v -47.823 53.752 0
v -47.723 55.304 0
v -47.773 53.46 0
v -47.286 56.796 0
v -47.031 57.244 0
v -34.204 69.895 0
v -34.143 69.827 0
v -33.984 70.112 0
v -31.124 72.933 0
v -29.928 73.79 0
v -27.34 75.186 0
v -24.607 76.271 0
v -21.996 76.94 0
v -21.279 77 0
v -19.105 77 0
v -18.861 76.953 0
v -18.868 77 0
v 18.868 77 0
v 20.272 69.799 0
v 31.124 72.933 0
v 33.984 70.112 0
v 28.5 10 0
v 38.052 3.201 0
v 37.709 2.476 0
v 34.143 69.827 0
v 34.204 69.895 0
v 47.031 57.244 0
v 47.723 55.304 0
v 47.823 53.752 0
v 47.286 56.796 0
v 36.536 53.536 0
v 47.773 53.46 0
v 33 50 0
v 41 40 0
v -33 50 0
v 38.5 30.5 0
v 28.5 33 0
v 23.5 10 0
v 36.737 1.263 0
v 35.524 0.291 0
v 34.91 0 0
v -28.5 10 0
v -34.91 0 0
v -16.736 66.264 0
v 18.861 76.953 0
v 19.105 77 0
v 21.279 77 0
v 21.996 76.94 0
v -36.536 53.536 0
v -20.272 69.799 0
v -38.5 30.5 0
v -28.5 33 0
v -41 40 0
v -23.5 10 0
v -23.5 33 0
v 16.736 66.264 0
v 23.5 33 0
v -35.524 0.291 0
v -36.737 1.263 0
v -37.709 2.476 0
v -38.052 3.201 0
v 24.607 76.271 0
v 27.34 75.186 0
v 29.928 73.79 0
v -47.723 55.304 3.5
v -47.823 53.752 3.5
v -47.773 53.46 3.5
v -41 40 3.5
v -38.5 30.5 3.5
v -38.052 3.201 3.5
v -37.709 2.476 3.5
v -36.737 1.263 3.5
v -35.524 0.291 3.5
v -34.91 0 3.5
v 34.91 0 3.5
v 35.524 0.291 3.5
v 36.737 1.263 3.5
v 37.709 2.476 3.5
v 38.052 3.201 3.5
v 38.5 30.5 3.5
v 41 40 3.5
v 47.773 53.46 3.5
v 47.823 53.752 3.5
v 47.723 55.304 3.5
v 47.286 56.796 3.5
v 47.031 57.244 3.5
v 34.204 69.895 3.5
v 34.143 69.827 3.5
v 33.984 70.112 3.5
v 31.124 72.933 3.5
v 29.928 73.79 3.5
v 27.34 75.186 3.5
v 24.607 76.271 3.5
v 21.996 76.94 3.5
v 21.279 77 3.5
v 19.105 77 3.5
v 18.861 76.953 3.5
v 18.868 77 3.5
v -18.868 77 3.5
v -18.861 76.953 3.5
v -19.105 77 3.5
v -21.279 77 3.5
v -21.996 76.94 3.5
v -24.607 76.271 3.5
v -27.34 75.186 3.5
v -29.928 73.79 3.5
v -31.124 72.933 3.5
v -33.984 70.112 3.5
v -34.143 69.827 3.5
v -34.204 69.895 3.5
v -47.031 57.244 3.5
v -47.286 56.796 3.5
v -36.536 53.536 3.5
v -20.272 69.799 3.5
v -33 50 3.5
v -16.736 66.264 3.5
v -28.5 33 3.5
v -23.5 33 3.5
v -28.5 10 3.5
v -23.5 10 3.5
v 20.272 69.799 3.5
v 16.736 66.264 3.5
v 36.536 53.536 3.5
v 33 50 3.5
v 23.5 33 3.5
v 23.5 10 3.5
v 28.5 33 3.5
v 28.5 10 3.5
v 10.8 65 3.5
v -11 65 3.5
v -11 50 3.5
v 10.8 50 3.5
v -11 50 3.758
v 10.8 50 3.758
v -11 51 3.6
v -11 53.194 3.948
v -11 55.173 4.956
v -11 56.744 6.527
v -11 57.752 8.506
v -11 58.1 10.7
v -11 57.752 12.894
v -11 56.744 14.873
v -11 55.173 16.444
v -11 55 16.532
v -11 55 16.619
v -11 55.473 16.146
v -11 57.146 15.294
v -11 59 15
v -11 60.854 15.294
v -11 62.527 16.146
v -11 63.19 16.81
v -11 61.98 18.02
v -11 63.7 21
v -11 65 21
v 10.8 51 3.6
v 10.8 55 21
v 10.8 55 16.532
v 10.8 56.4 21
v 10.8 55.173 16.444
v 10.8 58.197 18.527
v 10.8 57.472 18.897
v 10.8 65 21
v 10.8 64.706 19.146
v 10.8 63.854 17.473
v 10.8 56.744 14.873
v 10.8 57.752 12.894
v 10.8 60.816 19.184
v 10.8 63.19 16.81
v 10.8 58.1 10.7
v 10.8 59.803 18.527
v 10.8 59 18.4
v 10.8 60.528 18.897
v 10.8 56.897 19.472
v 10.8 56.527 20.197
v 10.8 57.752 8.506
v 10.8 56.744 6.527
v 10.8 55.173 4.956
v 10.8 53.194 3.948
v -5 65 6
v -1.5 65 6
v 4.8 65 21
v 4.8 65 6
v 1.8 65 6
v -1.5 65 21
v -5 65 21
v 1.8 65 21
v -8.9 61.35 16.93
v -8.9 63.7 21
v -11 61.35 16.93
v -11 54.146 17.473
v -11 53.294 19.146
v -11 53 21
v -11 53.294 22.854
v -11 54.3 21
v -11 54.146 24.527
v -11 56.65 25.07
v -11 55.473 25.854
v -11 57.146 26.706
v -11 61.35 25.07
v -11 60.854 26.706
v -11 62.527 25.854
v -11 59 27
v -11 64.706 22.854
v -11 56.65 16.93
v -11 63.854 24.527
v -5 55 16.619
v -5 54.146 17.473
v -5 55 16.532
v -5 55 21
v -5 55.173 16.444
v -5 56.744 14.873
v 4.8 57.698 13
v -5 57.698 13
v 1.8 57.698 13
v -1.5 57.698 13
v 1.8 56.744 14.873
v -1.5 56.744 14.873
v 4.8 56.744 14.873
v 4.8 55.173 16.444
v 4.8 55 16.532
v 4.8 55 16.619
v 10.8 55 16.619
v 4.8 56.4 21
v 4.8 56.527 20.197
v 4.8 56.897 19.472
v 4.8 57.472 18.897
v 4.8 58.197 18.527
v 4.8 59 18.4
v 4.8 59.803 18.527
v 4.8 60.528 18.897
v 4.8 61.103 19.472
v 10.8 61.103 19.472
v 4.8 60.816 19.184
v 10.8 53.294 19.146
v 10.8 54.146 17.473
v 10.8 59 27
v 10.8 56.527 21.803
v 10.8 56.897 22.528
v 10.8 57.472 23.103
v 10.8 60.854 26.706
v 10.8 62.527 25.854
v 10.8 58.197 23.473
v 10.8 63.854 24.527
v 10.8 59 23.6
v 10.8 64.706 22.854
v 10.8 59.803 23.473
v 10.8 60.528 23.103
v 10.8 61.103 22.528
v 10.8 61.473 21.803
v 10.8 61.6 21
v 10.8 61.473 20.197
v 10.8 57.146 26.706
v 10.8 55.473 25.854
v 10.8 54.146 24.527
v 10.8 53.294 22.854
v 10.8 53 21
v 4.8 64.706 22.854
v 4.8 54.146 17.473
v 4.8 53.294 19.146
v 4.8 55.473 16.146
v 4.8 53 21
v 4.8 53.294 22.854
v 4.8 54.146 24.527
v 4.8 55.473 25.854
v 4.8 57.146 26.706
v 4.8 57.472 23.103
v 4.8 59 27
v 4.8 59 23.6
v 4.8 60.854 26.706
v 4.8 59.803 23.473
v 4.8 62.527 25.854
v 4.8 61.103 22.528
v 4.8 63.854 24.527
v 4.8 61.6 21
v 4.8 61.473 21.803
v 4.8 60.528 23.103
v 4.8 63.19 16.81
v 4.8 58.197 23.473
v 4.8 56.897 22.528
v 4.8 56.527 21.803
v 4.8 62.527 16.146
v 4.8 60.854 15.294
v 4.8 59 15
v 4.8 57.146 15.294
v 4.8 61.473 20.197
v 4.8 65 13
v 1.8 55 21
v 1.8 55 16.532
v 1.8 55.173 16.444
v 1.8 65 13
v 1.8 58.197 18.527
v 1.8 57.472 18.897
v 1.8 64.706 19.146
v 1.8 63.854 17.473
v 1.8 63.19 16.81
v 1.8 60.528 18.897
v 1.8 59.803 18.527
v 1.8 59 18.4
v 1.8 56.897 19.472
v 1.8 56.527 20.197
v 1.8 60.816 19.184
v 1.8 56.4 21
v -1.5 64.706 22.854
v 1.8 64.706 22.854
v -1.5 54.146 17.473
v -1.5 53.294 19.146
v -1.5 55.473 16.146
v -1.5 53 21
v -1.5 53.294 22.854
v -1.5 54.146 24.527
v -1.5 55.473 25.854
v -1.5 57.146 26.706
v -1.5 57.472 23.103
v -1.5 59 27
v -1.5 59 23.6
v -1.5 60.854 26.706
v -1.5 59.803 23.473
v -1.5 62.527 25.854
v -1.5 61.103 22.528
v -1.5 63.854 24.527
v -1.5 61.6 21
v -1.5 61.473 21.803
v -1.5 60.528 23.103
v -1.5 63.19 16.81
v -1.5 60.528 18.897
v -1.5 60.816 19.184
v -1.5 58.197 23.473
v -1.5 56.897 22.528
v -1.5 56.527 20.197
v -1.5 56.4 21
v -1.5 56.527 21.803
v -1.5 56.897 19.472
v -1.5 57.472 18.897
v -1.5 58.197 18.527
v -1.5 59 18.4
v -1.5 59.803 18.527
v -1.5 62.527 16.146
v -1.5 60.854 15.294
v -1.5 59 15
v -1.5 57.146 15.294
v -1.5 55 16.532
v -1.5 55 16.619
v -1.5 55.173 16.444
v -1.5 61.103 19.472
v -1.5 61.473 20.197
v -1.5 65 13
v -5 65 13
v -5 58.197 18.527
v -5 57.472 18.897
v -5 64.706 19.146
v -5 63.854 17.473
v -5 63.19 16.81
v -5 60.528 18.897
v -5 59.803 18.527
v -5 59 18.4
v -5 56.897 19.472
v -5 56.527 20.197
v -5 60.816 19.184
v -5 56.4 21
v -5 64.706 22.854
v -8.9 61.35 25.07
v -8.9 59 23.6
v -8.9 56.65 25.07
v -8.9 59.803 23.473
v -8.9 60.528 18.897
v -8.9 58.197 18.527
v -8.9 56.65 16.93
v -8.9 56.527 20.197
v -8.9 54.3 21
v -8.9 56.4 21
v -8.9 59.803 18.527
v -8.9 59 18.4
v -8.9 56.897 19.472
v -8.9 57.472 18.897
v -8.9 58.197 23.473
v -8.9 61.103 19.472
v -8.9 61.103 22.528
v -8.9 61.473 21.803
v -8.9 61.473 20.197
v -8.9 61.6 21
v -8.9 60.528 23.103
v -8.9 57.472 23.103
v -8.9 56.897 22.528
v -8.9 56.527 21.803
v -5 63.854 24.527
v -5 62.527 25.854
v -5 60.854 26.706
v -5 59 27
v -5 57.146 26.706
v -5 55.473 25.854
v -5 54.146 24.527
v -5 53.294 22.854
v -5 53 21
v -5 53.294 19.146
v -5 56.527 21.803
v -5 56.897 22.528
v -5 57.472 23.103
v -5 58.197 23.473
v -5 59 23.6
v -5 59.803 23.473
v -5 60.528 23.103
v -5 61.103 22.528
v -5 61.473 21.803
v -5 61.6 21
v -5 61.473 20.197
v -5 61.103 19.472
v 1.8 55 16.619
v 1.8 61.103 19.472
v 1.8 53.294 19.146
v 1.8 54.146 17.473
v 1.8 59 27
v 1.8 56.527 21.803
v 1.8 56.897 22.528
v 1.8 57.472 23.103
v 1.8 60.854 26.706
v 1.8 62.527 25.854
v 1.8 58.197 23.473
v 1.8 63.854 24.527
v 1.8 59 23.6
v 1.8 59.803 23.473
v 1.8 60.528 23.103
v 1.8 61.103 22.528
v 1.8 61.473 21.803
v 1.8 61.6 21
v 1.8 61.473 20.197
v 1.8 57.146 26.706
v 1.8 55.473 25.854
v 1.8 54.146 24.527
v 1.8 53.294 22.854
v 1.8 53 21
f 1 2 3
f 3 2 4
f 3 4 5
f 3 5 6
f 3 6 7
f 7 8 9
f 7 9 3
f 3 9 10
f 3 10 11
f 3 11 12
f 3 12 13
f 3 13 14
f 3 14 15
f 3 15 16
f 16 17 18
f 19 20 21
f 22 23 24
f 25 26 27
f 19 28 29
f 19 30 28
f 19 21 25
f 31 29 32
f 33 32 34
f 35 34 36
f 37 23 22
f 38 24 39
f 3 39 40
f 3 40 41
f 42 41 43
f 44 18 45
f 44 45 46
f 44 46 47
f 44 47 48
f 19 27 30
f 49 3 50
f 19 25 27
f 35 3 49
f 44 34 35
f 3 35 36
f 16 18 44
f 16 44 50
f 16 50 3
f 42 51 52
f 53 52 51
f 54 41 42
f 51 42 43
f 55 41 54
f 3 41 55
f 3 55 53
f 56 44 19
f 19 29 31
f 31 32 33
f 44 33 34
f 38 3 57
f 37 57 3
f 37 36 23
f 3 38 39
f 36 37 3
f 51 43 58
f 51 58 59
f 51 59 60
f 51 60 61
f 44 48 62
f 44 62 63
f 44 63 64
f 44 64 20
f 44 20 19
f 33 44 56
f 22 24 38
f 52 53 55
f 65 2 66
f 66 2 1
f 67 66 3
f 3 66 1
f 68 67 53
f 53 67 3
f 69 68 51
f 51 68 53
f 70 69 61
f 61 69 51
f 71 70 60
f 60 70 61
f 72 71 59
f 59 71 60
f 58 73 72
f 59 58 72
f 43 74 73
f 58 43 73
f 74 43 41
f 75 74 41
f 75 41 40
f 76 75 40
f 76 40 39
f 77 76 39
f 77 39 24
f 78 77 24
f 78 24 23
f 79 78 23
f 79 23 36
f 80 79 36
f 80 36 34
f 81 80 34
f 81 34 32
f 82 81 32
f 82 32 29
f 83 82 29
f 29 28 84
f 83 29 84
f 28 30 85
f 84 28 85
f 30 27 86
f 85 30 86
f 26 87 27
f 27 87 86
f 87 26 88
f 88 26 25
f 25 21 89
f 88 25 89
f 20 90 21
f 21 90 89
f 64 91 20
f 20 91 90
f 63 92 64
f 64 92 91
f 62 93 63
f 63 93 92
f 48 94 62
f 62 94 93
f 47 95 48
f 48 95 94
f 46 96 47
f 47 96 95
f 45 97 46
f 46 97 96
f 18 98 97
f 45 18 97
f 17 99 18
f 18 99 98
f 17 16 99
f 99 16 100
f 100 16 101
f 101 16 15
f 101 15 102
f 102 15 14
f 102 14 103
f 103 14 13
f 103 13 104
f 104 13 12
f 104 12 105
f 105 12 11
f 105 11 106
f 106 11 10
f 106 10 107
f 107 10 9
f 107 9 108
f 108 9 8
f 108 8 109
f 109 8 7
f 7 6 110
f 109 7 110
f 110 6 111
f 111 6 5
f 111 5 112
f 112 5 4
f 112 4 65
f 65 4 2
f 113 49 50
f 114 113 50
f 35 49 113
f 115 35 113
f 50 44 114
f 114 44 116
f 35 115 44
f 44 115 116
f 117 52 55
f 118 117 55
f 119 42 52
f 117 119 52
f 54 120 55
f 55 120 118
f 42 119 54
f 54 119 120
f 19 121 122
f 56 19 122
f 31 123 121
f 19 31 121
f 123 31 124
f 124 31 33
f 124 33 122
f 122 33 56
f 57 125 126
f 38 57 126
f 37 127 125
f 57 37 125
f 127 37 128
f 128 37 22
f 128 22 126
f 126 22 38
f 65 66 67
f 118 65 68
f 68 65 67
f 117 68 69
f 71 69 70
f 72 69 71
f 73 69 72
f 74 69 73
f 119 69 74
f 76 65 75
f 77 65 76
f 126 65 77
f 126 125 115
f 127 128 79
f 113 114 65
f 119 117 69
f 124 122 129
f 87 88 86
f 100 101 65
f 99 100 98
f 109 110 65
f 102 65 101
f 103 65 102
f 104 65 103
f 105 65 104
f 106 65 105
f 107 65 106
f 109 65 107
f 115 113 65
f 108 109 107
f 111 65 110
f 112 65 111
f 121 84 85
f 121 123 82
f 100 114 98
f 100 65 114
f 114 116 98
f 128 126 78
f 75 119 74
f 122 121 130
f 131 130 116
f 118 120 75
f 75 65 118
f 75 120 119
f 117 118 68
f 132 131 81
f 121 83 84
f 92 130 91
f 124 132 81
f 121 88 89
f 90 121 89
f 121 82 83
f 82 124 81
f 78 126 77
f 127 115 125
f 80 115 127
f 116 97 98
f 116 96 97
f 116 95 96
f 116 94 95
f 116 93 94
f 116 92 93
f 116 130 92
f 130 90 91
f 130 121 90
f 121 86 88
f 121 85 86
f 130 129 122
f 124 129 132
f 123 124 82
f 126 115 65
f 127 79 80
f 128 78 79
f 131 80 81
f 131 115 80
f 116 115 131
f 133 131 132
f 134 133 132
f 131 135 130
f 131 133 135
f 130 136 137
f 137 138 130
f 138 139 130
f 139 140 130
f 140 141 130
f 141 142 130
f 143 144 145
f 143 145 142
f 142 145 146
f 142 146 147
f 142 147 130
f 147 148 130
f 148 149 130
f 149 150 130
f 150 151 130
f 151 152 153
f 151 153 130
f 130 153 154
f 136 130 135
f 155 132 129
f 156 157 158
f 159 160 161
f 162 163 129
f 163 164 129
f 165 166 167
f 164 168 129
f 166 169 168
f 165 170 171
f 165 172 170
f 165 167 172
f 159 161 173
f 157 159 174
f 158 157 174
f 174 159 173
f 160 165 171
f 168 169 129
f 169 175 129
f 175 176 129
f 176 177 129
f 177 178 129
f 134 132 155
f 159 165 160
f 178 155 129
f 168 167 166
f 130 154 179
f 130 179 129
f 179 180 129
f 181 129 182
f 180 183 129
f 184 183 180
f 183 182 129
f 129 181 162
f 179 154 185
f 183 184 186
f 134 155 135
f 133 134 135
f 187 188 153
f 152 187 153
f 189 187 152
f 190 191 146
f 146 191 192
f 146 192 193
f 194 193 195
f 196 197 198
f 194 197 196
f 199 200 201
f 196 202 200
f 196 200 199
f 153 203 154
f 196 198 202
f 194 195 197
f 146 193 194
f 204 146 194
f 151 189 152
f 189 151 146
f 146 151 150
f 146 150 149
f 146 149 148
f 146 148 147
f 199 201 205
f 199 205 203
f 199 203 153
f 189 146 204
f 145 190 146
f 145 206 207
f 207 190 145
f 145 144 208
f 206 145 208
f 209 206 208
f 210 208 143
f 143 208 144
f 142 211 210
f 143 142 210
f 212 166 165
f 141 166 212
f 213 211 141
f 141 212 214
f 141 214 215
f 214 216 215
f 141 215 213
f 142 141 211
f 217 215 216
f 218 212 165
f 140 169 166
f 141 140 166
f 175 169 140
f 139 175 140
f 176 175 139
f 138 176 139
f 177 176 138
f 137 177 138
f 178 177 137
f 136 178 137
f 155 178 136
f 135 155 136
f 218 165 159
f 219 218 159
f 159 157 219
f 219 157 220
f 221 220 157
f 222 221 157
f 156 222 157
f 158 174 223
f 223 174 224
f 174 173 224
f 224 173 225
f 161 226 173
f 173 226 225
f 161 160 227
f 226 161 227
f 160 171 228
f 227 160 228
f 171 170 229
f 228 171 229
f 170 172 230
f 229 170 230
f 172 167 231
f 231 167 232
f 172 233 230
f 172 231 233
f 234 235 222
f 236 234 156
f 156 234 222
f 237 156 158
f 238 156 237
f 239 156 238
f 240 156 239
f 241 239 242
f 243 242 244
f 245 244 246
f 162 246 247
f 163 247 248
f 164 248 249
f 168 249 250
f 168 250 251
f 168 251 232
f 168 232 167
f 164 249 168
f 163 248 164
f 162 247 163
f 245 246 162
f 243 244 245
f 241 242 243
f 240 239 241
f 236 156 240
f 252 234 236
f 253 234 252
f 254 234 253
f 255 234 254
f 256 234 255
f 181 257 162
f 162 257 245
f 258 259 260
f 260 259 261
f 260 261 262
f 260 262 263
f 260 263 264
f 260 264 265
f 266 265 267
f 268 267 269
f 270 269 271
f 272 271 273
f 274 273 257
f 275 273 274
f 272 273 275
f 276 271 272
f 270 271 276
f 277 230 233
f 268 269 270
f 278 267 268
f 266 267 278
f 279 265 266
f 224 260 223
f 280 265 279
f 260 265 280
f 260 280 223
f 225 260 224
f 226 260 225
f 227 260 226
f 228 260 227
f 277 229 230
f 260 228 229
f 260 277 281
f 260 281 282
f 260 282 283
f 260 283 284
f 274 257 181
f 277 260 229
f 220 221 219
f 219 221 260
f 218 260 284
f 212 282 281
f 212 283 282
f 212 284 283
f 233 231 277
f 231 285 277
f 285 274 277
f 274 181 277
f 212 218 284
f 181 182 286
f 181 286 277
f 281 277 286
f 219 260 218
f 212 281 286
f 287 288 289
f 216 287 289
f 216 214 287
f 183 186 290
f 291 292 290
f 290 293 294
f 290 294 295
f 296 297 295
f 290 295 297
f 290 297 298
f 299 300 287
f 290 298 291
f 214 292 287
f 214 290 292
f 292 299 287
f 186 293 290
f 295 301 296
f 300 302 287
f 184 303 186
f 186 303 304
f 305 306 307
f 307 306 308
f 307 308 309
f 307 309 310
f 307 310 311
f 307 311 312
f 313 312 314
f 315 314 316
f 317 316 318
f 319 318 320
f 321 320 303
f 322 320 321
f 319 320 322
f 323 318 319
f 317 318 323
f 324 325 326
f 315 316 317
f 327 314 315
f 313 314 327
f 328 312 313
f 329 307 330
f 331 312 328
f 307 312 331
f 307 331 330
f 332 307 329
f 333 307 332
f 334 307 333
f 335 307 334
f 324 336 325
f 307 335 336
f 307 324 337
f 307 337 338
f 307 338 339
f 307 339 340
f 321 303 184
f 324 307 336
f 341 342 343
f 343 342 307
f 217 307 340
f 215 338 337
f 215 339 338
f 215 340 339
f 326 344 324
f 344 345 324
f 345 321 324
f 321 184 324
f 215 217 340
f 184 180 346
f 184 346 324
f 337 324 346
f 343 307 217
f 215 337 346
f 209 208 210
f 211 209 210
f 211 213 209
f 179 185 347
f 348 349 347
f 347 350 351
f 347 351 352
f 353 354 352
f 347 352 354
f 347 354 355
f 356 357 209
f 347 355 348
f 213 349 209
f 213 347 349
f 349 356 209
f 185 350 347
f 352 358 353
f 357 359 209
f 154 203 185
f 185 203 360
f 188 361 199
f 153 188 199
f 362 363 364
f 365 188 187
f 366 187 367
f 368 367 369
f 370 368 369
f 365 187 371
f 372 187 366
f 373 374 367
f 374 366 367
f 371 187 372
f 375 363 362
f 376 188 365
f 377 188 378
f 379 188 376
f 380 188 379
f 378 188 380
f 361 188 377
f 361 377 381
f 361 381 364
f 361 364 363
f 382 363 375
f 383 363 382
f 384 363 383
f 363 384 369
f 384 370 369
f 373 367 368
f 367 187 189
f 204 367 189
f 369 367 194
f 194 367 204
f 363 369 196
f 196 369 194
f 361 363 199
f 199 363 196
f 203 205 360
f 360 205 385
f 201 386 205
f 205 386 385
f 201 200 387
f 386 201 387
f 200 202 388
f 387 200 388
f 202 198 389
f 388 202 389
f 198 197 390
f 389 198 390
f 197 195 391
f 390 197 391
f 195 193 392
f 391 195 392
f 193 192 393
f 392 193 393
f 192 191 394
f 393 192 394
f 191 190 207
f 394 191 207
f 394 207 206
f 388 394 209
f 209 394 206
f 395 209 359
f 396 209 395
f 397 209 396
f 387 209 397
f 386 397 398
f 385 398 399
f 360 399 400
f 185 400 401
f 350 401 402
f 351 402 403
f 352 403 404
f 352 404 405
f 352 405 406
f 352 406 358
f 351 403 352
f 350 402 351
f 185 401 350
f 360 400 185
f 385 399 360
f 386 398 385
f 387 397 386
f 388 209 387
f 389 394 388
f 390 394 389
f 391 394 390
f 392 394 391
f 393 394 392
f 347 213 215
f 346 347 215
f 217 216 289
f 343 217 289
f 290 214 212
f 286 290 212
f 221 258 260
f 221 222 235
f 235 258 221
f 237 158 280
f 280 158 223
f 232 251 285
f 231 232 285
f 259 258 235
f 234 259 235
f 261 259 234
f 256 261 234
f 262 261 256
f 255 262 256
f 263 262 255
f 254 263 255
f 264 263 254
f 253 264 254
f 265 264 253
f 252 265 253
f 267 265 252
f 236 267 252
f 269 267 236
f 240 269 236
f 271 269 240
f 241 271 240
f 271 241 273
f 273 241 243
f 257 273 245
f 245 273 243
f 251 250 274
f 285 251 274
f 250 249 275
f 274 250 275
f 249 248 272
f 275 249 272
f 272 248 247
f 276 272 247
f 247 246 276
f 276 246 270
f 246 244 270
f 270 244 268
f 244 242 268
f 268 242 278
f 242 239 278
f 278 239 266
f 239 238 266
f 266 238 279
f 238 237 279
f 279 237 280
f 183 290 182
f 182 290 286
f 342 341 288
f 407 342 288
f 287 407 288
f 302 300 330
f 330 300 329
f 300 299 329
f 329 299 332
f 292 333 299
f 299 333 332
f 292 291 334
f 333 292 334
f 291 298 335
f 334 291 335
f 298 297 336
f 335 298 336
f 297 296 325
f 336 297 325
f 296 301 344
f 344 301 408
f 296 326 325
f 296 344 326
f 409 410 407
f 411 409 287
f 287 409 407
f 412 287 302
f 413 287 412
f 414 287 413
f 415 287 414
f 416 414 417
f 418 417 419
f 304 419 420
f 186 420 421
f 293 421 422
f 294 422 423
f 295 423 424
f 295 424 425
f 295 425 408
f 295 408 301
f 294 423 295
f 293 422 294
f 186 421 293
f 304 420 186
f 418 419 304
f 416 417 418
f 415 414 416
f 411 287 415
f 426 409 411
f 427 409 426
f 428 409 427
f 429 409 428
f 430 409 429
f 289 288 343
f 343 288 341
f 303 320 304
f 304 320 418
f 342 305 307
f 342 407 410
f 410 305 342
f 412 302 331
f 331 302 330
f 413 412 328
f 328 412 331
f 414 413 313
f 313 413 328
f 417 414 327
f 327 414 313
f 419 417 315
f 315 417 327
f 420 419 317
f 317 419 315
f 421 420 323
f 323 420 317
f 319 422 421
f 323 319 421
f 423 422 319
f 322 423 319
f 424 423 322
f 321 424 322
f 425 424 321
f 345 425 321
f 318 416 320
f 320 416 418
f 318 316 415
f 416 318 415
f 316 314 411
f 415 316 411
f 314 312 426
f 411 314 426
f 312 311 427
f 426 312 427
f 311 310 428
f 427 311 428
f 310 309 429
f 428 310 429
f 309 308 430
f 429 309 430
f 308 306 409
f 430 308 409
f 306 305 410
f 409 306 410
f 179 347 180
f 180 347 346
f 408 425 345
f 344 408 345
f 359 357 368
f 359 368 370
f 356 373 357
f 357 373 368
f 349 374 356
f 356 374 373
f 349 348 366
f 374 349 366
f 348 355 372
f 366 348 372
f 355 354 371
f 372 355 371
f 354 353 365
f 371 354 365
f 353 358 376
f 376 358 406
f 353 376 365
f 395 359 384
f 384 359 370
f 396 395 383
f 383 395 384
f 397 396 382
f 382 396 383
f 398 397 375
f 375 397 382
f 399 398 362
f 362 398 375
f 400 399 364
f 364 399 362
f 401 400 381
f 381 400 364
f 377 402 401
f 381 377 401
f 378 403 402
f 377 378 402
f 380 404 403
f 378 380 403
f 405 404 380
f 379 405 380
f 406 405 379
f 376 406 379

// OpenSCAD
// file: GoPro_Connection.scad
use<MCAD/nuts_and_bolts.scad>
$fn = 50;

// 5.5 diameter
bolt_hole_r = 5.2 / 2;
handle_size = 6;
handle_height = 15;
nut_size = 5;
// based on http://www.thingiverse.com/thing:22436
module GoPro_Connection()
{
	translate([0,3,0])
	{
		difference()
		{
			// tabs
			union()
			{

				translate([-3,0,0]) {
				cube([6,handle_height,10]);
				translate([0,handle_height,handle_size]) rotate([90,0,90])
					cylinder(6,handle_size,handle_size);
				}
				// note: center tab is slightly larger the the other two tabs
				translate([6.5,0,0])
				{
					cube([3.3,handle_height,10]);
					translate([0,handle_height,handle_size]) rotate([90,0,90])
						cylinder(3.3,handle_size,handle_size);
				}

				translate([12.8,0,0])
				{
					cube([6,handle_height,10]);
					translate([0,handle_height,handle_size]) rotate([90,0,90])
						cylinder(6,handle_size,handle_size);
				}
			}

			// bolt hole
			translate([-7, handle_height, handle_size]) rotate([0,90,0])
				cylinder(30, bolt_hole_r, bolt_hole_r);
                        translate([-5,handle_height+(nut_size/2)-2.5,handle_size]) rotate([0,90,0]) nutHole(nut_size, tolerance=0.1);

		}
	}

	// connection block
	translate([-3,0,0]) cube([21.8,3,10]);
}
//GoPro_Connection();
// main file
include<GoPro_Connection.scad>
$fn=20;
h=3.5;

module polowka_2D() {
    translate([-76/2,0,0])
      polygon(points=[[76/2, 0],
                      [76,   0],
                      [76.5, 30.5],
                      [79,   40],
                      [86.8, 55.5],
                      [65,   77],
                      [76/2, 77]]);
}

module corner(x, y=0) {
    difference() {
        resize([x+2,y,0]) cylinder(r=x/2, h=h);
        resize([0,y+2,0]) translate([(x/2)/2,0,0]) cylinder(r=x/2, h=h);
    }
}

module polowka_3D() {
    difference() {
        linear_extrude(height=h)  polowka_2D();
        translate([35.5,2.5,0])   rotate([0,0,90+45]) corner(7,8);
        translate([46,55,0])      rotate([0,0,190])   corner(7,8);
        translate([26.6,73.6,0])  rotate([0,0,-115])  corner(7,17);
        translate([23.5,10,-1])   cube([5,23,10]);
        translate([33,50,-1])     rotate([0,0,45])    cube([5,23,10]);
    }
}

color("green") polowka_3D();
mirror([1,0,0]) polowka_3D();

translate([-8,65,3]) {
    difference() {
        union() {
            rotate([90,0,0]) GoPro_Connection();
            translate([-3,-15,0]) cube([21.8,15,10]);
        }
        translate([-3.05,-14,7.7]) rotate([0,90,0]) cylinder(22,7.1,7.1);
    }
}
